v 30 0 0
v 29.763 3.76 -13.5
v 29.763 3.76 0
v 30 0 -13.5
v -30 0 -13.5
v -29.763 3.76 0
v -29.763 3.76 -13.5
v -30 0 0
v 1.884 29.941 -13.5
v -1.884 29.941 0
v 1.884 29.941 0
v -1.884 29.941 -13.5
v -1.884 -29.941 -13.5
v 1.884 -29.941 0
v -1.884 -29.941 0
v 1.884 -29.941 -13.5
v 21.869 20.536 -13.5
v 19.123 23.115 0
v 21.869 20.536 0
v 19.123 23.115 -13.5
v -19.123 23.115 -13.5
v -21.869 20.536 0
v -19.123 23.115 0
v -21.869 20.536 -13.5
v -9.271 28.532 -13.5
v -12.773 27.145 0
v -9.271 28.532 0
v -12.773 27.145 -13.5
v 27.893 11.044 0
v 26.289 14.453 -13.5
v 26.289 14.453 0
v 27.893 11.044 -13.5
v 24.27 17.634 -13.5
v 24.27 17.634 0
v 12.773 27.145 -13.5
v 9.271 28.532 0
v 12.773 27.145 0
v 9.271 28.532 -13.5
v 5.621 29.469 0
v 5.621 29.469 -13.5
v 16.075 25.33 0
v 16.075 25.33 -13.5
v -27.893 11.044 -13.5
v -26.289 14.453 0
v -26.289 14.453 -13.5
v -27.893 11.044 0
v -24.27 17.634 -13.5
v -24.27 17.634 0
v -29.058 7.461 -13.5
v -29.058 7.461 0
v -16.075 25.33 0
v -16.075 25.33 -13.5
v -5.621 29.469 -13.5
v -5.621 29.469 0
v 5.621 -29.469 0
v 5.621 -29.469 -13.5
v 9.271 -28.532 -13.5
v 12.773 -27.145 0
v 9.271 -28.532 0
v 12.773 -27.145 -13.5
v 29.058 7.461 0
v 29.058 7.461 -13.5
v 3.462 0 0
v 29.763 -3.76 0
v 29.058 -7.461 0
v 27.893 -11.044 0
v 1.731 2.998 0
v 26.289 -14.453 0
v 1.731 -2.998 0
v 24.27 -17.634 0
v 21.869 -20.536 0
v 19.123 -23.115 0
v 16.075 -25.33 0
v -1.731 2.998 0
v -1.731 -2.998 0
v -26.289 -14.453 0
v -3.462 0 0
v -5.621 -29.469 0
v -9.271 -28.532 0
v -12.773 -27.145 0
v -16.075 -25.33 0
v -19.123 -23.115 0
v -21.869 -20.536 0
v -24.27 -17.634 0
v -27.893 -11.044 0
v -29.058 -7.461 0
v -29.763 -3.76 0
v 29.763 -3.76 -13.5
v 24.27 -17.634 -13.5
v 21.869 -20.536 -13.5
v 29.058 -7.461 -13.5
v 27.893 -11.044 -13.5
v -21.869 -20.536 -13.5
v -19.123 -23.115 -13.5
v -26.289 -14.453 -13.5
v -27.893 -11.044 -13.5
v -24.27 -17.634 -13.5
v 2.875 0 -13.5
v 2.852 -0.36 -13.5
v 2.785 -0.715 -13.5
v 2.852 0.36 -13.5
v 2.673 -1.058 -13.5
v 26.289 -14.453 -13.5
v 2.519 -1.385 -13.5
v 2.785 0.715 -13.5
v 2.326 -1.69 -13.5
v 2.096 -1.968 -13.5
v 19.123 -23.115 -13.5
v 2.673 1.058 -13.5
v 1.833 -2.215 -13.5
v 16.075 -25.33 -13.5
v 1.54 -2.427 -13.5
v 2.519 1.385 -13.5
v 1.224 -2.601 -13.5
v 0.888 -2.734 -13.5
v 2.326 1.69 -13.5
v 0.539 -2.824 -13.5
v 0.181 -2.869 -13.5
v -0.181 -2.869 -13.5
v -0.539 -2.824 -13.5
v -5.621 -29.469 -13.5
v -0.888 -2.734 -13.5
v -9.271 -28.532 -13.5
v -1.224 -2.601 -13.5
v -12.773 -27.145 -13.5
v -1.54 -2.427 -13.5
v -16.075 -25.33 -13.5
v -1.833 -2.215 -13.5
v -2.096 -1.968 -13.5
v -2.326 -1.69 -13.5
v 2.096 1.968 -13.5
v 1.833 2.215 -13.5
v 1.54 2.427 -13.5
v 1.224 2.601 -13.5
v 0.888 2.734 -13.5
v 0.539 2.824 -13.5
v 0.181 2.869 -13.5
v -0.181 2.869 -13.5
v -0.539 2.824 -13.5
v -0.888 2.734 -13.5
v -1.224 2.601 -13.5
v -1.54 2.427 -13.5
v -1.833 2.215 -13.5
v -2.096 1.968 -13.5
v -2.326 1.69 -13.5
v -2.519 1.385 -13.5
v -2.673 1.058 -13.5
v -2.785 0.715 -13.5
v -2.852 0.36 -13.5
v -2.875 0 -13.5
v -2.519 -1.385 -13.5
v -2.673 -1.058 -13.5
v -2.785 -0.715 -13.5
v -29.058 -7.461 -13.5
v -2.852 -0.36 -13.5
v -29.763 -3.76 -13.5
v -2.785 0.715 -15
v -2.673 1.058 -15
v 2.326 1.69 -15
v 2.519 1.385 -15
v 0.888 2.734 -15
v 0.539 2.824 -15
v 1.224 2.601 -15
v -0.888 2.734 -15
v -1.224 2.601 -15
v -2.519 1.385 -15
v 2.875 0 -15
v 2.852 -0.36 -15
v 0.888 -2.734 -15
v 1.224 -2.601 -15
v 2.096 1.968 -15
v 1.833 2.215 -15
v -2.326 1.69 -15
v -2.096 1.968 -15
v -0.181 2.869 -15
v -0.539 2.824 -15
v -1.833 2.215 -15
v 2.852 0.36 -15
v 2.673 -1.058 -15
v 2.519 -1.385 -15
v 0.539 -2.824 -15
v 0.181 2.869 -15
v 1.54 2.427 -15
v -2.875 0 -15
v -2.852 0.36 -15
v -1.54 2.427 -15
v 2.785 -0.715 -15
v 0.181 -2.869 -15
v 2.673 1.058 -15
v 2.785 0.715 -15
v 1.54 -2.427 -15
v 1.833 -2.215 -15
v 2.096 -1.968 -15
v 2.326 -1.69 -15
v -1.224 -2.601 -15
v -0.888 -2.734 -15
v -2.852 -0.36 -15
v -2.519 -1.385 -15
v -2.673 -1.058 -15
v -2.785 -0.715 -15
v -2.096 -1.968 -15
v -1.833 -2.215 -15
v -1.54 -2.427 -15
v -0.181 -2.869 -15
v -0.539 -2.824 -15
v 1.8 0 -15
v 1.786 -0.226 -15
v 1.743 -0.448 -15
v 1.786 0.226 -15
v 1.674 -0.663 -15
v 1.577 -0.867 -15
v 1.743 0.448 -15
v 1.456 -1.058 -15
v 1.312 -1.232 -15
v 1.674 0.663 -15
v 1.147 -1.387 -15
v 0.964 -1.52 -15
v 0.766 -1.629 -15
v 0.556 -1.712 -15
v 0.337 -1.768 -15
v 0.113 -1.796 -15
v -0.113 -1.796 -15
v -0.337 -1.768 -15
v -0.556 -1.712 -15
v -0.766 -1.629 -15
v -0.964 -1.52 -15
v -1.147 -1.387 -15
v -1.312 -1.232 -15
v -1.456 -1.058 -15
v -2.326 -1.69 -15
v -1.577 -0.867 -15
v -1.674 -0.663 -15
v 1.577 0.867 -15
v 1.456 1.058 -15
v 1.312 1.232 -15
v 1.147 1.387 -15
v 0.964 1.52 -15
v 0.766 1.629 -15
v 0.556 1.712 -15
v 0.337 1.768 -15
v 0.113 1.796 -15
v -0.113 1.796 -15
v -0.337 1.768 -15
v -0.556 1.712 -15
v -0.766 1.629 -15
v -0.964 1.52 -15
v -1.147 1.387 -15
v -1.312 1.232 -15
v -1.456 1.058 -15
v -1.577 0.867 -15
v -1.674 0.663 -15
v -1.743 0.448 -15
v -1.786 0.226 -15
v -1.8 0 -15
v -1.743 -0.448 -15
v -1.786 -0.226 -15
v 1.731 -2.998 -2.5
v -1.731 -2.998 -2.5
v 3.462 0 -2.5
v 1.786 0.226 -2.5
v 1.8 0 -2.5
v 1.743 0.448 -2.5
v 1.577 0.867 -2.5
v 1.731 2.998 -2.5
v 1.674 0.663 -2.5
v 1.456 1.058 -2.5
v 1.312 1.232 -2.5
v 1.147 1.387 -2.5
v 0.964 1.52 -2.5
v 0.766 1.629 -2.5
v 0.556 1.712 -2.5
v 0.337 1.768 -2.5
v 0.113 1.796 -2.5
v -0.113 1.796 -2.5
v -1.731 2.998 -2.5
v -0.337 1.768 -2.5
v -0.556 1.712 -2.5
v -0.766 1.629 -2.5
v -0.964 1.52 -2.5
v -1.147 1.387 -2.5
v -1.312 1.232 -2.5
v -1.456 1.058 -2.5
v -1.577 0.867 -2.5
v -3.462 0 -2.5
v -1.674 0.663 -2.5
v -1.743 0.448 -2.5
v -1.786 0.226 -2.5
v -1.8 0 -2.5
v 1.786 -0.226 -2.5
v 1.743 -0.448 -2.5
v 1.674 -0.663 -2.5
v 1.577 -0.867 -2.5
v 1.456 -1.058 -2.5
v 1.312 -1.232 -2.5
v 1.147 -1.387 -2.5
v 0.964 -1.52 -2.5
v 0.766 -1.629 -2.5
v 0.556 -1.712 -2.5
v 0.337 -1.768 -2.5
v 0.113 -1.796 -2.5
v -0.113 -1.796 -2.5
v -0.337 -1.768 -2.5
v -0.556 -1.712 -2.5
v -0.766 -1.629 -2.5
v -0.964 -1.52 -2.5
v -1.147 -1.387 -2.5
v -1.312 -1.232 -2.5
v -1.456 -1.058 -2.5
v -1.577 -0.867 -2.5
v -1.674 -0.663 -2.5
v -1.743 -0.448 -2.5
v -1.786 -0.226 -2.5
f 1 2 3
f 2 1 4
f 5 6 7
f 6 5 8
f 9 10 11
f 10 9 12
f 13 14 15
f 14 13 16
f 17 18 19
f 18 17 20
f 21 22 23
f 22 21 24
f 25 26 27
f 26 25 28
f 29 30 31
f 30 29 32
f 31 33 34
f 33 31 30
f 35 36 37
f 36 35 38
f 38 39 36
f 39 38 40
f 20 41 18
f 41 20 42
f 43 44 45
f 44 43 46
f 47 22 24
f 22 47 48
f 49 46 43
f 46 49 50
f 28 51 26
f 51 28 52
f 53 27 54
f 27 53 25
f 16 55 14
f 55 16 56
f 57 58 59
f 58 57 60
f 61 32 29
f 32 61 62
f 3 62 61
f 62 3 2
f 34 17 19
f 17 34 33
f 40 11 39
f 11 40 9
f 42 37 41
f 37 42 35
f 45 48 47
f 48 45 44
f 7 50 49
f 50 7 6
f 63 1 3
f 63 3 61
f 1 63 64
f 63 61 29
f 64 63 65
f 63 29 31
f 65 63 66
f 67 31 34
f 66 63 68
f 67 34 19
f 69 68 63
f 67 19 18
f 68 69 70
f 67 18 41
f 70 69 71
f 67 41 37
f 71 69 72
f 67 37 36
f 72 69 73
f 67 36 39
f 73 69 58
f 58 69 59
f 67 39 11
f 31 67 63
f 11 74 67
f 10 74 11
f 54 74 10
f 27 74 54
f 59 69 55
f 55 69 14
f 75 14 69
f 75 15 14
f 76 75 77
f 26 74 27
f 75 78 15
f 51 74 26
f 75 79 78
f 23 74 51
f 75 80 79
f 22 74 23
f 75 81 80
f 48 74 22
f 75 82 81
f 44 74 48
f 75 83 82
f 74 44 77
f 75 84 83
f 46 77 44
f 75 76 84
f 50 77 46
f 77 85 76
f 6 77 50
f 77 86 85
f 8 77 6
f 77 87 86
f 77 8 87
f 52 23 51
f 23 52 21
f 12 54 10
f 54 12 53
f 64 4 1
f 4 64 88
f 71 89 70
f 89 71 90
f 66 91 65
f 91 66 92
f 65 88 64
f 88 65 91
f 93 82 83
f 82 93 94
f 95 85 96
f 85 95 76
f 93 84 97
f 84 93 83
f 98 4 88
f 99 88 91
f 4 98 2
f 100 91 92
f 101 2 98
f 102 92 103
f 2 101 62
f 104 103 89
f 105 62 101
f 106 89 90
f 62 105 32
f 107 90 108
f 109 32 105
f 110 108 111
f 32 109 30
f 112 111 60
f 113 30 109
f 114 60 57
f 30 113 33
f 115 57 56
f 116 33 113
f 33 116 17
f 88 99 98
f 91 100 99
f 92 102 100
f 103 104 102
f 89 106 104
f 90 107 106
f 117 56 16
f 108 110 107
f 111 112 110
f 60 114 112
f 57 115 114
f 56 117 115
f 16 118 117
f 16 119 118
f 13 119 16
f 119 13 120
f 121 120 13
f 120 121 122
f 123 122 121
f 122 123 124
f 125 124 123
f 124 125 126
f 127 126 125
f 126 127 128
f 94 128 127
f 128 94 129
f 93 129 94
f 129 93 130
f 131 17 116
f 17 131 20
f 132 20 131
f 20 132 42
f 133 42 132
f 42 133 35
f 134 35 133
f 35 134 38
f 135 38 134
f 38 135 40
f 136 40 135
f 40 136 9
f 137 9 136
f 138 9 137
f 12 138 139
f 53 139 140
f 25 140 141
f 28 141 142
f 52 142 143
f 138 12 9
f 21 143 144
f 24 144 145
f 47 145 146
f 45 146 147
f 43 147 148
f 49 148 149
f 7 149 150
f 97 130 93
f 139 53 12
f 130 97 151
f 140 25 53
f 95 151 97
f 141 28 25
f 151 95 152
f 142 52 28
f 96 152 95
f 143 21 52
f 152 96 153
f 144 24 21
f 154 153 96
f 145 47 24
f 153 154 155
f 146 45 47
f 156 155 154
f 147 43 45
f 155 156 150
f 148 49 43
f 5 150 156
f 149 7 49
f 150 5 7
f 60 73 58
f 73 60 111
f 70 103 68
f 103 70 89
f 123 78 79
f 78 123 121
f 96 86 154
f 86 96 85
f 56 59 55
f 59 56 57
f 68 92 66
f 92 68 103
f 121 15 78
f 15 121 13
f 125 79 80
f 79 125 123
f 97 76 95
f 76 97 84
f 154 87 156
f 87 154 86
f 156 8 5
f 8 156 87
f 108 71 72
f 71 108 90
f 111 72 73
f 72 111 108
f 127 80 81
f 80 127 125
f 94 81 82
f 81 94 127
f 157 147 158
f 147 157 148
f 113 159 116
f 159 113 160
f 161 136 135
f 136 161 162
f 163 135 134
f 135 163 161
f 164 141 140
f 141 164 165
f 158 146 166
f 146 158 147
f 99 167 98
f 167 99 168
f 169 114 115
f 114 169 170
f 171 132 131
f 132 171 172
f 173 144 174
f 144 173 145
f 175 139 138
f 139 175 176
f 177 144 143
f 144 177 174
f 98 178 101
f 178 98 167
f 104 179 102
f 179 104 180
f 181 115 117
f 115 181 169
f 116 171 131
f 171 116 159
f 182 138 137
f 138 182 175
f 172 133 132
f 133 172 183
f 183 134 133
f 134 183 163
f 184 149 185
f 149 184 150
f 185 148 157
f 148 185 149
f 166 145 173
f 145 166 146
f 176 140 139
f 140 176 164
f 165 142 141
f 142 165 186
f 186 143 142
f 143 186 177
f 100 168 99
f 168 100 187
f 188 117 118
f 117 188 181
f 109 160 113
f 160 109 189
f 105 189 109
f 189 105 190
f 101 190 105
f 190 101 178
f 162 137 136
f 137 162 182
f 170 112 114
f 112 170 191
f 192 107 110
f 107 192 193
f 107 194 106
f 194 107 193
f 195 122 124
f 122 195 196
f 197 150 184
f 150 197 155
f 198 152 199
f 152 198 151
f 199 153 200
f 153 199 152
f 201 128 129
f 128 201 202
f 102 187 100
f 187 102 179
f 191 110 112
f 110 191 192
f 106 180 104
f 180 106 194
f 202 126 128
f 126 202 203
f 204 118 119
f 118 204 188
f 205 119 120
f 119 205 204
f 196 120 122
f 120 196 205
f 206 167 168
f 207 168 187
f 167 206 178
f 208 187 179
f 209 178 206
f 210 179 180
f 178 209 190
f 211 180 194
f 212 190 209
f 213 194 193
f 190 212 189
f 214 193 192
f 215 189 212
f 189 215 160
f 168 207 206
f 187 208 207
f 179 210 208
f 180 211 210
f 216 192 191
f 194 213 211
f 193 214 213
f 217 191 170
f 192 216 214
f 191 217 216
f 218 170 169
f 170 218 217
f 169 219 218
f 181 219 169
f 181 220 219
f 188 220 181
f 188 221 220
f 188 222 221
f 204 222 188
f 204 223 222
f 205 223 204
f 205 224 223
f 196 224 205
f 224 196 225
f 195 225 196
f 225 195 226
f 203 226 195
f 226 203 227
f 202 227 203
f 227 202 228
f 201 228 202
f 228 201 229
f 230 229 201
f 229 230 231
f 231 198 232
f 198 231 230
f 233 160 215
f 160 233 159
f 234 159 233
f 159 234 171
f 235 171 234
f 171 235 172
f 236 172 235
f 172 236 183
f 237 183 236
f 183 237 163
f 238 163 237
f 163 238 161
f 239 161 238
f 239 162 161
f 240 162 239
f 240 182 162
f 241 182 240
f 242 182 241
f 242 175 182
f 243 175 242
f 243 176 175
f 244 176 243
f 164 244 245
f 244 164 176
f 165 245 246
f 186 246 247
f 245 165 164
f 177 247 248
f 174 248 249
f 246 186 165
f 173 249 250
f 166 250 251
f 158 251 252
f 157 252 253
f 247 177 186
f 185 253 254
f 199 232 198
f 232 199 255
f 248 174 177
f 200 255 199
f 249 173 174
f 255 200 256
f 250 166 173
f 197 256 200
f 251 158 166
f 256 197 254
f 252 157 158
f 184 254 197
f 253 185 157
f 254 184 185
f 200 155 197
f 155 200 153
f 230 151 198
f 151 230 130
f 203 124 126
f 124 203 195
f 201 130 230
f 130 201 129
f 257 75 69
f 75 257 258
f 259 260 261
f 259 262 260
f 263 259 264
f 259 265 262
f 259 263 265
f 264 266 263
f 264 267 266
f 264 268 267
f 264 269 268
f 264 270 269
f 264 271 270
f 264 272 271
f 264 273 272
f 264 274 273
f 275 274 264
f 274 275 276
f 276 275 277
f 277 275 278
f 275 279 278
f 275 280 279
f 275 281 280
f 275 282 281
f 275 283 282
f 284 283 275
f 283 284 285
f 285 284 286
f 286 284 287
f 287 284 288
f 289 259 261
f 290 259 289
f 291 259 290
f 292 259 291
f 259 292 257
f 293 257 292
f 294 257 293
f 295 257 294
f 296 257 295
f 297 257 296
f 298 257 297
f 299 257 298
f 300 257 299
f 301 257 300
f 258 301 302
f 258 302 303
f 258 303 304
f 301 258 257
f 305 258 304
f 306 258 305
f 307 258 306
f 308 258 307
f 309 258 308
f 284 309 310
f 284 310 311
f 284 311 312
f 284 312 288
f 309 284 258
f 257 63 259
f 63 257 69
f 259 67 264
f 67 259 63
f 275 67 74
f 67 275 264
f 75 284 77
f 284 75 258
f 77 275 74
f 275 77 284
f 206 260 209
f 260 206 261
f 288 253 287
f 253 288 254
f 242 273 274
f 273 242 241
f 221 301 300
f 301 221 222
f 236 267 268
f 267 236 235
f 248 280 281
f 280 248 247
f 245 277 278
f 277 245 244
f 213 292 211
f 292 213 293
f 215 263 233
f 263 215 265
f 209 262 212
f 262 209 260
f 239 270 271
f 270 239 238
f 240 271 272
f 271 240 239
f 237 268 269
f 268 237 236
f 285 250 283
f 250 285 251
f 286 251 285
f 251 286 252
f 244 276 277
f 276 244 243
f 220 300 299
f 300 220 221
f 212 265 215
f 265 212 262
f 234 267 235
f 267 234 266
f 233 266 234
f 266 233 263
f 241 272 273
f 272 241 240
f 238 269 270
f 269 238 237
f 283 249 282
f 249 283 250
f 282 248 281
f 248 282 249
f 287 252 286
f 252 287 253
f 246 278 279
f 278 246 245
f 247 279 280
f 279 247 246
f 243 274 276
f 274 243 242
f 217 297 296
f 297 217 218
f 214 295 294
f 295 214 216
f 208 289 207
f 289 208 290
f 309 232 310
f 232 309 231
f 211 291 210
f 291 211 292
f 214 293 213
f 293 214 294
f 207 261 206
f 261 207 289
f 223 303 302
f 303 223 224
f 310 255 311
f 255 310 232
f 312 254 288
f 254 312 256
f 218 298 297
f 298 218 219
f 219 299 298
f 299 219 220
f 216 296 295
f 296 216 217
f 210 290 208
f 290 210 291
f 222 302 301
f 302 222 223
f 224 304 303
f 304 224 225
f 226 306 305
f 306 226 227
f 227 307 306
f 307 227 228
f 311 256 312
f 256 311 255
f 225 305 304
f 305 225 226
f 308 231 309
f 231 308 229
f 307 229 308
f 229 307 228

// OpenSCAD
$fn = 50;


difference() {
	union() {
		translate(v = [0, 0, -13.5000000000]) {
			cylinder(h = 13.5000000000, r = 30.0000000000);
		}
		translate(v = [0, 0, -15.0000000000]) {
			cylinder(h = 15, r = 2.8750000000);
		}
	}
	union() {
		translate(v = [0, 0, 0]) {
			rotate(a = [0, 0, 0]) {
				difference() {
					union() {
						translate(v = [0, 0, -2.5000000000]) {
							linear_extrude(height = 2.5000000000) {
								polygon(points = [[3.4620000000, 0.0000000000], [1.7310000000, 2.9981799479], [-1.7310000000, 2.9981799479], [-3.4620000000, 0.0000000000], [-1.7310000000, -2.9981799479], [1.7310000000, -2.9981799479]]);
							}
						}
					}
					union();
				}
			}
		}
		#translate(v = [0, 0, -100.0000000000]) {
			cylinder(h = 200, r = 1.8000000000);
		}
	}
}
